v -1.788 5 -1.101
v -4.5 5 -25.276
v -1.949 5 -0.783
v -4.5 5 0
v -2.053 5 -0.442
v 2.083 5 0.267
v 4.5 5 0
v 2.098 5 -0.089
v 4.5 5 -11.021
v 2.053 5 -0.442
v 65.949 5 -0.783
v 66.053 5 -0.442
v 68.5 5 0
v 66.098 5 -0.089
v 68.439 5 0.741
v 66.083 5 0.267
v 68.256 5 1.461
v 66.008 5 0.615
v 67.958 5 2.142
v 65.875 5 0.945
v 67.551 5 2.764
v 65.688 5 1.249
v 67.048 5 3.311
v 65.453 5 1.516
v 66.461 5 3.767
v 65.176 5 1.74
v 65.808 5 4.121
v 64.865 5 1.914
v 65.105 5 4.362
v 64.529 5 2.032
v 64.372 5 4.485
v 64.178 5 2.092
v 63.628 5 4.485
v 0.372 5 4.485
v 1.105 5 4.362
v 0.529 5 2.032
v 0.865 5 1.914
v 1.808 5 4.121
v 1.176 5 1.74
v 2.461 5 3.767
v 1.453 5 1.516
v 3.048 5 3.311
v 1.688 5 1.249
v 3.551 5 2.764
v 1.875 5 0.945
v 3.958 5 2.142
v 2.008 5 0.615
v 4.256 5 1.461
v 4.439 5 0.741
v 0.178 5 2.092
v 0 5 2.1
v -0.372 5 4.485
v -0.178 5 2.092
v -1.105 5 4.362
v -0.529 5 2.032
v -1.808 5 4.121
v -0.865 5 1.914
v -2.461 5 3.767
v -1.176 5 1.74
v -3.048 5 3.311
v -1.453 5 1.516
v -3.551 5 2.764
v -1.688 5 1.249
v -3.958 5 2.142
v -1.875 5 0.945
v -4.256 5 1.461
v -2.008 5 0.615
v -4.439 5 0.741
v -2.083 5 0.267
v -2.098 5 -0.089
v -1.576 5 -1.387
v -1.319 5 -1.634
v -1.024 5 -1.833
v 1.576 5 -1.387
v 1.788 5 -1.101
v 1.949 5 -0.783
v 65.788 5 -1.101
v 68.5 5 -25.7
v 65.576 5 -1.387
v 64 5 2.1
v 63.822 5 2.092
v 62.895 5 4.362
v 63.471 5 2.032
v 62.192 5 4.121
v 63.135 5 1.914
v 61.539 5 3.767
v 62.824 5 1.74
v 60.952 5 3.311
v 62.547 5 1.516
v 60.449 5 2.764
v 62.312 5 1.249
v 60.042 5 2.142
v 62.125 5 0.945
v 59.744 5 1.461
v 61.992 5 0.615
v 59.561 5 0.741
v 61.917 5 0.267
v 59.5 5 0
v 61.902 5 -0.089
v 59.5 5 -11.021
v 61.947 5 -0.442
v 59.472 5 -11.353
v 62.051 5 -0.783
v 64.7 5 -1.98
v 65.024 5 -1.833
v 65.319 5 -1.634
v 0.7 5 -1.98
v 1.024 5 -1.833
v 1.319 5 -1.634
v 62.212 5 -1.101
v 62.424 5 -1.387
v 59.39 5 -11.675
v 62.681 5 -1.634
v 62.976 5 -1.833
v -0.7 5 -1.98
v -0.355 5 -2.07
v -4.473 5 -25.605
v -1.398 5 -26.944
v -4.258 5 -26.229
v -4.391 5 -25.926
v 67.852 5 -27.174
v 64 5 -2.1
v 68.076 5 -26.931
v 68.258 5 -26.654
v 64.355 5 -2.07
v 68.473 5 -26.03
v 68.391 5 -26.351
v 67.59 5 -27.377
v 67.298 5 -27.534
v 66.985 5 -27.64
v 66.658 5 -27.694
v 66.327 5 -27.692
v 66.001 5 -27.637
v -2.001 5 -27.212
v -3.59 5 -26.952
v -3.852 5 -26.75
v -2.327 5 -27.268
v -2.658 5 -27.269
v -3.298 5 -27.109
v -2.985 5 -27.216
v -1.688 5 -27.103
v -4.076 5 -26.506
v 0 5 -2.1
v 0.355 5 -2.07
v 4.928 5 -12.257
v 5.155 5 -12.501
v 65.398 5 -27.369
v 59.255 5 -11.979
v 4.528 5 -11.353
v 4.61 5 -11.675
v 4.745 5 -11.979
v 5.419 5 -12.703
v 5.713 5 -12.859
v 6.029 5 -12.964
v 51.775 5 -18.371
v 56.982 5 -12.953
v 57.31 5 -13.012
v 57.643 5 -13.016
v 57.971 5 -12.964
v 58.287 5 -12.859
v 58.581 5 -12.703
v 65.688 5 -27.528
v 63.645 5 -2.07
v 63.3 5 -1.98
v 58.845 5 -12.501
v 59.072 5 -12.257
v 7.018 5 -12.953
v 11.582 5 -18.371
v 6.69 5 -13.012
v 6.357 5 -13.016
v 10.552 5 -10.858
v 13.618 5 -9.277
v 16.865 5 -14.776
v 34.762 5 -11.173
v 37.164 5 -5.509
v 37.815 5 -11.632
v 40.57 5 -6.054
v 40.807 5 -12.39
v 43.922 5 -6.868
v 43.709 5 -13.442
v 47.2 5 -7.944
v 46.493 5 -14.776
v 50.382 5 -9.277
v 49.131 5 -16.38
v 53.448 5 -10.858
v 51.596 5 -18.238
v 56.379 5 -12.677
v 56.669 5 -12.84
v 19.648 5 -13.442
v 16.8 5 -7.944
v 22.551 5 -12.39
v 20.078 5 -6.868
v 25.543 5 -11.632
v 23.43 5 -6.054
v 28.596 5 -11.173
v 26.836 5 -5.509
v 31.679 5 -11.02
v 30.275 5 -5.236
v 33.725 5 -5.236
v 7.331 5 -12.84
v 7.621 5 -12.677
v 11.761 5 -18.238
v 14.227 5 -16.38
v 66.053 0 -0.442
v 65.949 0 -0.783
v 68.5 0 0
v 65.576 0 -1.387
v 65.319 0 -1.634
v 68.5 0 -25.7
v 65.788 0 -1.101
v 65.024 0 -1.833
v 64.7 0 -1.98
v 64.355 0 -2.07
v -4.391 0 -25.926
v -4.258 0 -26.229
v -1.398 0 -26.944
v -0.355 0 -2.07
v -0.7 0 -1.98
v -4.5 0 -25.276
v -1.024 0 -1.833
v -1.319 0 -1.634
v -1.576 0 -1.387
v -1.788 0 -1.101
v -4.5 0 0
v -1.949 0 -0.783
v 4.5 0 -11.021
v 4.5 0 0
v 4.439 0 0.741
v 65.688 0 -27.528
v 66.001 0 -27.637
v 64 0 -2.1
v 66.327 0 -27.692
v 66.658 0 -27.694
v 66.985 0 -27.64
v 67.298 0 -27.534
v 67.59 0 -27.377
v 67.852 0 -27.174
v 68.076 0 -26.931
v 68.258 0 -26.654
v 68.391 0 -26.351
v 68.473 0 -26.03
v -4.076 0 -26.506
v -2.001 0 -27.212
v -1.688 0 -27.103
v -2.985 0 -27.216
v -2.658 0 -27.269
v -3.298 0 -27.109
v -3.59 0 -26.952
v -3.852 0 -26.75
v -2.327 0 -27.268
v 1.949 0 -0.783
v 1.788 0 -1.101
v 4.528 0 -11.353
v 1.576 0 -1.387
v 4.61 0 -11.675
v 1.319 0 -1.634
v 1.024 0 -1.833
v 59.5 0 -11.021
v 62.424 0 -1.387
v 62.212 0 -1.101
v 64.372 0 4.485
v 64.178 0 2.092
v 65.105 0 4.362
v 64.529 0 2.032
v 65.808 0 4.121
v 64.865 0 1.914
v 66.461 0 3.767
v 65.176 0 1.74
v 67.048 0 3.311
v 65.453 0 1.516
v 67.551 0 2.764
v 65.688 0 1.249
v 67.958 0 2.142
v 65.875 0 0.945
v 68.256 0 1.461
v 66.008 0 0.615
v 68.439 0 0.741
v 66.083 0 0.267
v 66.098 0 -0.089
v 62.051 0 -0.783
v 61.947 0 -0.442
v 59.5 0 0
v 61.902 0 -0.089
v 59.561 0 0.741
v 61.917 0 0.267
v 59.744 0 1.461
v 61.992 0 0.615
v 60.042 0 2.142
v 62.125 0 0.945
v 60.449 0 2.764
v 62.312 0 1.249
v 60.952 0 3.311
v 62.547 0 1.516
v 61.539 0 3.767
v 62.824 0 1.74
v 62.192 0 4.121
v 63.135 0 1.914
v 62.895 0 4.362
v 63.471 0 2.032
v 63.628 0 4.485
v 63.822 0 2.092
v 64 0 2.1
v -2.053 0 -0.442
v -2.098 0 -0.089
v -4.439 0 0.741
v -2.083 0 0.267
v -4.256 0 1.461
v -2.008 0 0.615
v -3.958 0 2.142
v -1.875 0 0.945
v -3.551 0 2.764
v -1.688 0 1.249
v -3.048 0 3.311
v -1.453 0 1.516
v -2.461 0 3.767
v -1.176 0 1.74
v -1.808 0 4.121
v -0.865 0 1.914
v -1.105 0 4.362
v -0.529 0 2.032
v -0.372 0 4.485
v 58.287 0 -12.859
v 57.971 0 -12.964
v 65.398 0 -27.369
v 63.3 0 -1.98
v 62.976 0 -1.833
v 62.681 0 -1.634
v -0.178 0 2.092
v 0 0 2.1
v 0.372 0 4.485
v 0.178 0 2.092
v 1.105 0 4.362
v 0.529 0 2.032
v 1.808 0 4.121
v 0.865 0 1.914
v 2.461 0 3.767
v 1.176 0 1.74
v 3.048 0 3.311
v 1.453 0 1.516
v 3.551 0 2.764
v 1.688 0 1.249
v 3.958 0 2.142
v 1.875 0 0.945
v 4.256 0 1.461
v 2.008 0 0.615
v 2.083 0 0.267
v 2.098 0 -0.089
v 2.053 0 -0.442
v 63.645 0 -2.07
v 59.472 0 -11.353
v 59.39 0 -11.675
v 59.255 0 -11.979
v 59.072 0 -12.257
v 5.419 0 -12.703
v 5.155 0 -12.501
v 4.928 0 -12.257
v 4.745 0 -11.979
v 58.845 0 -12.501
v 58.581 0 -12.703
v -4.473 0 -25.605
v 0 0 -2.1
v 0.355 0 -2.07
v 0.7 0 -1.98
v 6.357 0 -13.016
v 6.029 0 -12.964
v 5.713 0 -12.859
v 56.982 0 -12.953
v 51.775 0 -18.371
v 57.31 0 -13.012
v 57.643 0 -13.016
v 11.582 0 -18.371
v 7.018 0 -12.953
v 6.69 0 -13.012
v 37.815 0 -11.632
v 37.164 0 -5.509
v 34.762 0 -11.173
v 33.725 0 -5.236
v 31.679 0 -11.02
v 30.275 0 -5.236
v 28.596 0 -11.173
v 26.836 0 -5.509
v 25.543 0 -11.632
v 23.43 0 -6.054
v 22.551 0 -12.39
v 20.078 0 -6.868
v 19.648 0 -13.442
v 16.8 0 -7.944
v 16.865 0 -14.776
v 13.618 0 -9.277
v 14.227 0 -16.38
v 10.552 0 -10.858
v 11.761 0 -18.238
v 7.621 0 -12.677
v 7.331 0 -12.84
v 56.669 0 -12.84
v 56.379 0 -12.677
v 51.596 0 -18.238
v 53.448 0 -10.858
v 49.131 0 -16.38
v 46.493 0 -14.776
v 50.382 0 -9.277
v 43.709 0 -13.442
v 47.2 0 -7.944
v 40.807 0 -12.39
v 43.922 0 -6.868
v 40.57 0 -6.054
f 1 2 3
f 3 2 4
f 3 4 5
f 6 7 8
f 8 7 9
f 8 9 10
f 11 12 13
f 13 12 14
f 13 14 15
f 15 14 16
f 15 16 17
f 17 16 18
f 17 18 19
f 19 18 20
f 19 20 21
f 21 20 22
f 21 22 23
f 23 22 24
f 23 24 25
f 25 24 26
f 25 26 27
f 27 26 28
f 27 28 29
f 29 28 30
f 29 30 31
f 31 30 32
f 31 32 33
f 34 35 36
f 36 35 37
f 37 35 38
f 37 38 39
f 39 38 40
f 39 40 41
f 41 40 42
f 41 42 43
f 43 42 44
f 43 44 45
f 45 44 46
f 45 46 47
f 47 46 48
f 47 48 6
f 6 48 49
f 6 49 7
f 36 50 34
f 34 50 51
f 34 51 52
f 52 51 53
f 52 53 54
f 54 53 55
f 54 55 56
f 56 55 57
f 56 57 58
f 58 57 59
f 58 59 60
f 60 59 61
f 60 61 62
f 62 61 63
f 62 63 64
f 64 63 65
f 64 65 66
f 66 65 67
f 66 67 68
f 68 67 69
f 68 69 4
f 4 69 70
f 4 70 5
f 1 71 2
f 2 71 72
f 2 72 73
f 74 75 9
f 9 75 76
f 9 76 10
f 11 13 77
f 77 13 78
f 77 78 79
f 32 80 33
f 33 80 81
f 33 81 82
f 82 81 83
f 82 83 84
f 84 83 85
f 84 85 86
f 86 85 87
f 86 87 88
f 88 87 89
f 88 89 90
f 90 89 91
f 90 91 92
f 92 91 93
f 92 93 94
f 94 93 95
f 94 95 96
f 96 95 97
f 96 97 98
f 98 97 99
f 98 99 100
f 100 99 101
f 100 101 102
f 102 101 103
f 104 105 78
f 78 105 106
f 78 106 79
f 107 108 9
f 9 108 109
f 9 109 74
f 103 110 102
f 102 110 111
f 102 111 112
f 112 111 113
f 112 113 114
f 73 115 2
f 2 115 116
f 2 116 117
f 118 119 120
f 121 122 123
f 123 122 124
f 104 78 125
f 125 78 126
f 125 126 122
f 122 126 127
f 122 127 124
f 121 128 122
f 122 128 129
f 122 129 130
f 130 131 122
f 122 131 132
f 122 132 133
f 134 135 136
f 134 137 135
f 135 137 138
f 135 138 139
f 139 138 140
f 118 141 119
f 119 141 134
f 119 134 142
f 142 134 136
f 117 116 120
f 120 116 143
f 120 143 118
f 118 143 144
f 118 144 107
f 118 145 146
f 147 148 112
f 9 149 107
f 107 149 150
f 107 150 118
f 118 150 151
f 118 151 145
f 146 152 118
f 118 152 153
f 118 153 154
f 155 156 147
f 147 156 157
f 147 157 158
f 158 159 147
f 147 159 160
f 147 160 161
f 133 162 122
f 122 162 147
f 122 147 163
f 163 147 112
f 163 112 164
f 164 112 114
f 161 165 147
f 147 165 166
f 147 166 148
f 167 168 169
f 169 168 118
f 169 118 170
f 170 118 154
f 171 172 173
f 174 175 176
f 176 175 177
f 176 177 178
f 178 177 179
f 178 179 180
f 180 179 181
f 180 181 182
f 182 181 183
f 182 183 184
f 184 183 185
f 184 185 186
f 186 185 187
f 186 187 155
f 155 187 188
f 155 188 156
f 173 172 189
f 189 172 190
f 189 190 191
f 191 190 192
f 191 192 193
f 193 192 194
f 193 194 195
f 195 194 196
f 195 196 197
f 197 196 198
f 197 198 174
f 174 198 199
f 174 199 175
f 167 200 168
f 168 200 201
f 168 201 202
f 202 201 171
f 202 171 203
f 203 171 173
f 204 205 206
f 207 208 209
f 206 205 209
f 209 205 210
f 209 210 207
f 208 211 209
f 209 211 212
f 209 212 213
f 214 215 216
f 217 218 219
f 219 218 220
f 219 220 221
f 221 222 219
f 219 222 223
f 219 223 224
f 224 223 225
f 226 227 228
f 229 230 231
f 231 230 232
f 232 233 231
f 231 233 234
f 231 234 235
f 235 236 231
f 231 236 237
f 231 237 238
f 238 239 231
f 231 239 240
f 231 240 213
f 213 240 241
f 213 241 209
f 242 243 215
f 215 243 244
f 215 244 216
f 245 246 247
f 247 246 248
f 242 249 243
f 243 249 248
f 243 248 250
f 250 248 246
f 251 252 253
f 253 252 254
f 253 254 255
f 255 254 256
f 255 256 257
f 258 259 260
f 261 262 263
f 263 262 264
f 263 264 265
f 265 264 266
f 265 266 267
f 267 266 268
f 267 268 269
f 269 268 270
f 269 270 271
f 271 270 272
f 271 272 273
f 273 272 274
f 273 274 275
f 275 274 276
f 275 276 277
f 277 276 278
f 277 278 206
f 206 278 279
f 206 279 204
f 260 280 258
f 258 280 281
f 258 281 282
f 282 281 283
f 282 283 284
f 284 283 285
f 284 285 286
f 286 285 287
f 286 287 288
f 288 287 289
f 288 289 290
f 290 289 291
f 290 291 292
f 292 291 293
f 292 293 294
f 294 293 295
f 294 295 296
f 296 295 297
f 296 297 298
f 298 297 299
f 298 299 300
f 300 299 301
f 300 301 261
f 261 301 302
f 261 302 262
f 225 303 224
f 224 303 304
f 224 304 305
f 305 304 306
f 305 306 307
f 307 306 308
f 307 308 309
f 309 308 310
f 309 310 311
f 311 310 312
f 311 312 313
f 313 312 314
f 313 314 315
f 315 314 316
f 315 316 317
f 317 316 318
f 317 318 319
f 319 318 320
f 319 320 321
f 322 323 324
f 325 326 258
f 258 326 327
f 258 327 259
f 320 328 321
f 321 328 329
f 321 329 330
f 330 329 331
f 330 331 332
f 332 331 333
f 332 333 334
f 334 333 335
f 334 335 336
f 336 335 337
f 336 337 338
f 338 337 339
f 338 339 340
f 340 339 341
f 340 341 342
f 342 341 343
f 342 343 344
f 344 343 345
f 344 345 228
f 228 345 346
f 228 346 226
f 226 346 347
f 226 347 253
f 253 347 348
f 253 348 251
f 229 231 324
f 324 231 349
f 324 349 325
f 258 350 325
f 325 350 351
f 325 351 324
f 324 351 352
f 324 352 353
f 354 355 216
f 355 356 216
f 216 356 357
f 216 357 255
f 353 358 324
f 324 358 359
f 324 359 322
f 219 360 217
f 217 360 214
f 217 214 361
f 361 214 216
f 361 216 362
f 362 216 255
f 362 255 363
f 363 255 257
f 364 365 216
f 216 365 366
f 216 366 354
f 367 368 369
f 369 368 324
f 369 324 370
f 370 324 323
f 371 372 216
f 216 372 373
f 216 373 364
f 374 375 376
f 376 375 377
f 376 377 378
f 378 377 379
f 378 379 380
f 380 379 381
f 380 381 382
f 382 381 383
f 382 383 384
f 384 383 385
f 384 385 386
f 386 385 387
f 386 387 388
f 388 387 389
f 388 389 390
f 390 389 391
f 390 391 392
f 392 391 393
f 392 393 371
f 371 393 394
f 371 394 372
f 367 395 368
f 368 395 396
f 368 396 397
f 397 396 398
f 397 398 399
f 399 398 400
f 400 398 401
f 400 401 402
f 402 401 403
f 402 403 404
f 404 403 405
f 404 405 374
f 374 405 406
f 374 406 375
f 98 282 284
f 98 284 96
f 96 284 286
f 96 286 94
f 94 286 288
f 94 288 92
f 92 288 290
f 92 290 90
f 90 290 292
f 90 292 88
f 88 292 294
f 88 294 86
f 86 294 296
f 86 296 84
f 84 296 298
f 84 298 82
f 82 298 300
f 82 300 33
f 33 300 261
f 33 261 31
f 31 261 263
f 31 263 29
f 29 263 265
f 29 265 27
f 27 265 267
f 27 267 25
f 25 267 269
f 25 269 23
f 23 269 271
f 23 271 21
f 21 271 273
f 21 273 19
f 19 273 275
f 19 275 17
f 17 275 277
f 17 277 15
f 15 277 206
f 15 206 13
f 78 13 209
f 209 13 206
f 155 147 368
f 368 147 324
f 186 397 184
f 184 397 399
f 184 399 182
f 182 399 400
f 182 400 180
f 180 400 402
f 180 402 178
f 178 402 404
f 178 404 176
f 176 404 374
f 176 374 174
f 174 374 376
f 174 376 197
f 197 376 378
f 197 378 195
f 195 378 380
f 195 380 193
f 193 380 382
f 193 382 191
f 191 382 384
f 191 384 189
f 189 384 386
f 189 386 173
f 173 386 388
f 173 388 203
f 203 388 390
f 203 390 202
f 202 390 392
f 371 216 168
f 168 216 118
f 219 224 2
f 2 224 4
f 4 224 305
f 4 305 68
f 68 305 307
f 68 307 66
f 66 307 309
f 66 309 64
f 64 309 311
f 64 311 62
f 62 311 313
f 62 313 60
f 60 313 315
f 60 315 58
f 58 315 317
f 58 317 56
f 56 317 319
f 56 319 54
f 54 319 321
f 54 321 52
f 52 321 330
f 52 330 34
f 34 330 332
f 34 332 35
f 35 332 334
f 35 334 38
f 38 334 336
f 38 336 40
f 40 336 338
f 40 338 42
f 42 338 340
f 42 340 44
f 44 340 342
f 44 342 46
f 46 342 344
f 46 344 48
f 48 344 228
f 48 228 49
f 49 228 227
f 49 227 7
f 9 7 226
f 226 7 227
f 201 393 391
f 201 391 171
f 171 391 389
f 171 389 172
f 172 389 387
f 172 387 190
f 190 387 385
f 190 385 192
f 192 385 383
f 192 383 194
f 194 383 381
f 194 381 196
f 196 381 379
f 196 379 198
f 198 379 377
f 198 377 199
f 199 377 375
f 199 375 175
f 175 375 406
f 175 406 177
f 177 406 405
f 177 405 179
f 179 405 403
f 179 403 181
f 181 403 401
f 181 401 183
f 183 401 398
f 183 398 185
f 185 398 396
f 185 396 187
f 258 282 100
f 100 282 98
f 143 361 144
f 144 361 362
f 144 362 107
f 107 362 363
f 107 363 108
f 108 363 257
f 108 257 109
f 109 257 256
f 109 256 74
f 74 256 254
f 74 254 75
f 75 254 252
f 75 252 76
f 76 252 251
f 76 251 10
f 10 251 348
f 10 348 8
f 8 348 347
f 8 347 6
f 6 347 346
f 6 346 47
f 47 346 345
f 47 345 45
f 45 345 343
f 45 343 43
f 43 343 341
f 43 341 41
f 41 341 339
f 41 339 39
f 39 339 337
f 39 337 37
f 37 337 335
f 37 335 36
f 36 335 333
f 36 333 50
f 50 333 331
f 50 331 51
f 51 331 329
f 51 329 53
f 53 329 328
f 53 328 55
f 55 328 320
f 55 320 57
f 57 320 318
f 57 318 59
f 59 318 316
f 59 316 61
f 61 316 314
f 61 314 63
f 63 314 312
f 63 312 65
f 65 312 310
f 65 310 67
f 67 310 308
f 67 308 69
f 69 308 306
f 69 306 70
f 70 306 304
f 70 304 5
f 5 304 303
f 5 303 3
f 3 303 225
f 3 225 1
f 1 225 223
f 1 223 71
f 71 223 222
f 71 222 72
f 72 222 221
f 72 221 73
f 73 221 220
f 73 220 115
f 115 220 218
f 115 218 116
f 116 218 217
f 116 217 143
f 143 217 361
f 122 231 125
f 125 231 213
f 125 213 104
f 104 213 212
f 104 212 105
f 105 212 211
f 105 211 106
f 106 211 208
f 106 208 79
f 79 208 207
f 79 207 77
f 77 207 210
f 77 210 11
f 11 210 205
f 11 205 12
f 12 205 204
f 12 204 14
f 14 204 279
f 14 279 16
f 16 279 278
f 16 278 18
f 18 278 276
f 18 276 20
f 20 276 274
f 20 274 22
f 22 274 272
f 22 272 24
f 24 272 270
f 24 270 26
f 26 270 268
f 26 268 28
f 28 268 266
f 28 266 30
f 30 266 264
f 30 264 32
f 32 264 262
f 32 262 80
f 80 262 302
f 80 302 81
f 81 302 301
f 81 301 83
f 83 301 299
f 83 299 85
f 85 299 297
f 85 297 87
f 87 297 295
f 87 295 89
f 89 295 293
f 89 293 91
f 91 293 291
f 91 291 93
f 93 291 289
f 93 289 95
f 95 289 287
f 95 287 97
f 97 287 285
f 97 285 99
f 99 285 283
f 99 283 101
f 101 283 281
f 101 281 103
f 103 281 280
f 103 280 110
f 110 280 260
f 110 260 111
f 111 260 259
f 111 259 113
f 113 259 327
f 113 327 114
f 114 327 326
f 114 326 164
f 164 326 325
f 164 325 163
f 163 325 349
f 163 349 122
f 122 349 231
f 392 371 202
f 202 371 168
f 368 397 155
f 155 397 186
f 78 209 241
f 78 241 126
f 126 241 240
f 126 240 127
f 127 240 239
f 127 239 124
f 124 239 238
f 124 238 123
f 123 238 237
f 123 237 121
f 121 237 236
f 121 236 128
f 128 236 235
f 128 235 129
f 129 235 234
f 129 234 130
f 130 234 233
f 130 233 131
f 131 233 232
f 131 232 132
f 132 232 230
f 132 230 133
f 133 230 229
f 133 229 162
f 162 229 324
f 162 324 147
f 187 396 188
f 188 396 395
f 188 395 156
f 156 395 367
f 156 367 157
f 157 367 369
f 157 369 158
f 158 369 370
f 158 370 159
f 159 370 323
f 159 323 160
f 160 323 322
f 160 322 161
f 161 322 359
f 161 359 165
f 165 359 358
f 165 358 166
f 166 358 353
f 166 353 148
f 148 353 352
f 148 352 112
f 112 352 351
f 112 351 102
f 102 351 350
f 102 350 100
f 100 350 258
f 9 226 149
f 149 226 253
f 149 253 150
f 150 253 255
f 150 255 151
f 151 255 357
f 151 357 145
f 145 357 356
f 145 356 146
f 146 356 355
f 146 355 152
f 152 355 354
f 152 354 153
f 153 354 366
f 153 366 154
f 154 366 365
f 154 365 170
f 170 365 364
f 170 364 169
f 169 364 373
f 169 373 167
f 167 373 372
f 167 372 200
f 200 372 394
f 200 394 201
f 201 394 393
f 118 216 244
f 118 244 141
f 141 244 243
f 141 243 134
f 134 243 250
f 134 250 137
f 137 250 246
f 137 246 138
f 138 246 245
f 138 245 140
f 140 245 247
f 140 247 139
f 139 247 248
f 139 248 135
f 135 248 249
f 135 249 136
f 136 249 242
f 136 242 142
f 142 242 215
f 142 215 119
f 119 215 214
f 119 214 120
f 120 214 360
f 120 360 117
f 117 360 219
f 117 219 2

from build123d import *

# Parameters (mm, degrees)
SKETCH1_R           = 2.1
BOSS_EXTRUDE1_DEPTH = 5
FILLET2_R           = 2


with BuildPart() as part:
    # Sketch1 → Boss-Extrude1 (new body)
    with BuildSketch(Plane(origin=(0, 0, 0), x_dir=(1, 0, 0), z_dir=(0, 1, 0))):
        with BuildLine():
            Line((68.5, 0), (68.5, 15))
            Line((68.5, 15), (68.5, 24.639286301))
            Line((68.5, 24.639286301), (68.5, 29.417680708))
            Line((68.5, 29.417680708), (51.680517538, 18.308520556))
            ThreePointArc((51.680517538, 18.308520556), (31.678817451, 11.020026075), (11.677117365, 18.308520556))
            Line((11.677117365, 18.308520556), (-4.5, 28.993402687))
            Line((-4.5, 28.993402687), (-4.5, 0))
            ThreePointArc((-4.5, 0), (0, -4.5), (4.5, 0))
            Line((4.5, 0), (4.5, 15))
            ThreePointArc((4.5, 15), (32, 5.201587921), (59.5, 15))
            Line((59.5, 15), (59.5, 0))
            ThreePointArc((59.5, 0), (64, -4.5), (68.5, 0))
        make_face()
        with Locations(Location((0, 0, 0), (0, 0, 270))):
            Circle(SKETCH1_R, mode=Mode.SUBTRACT)
        with Locations(Location((64, 0, 0), (0, 0, 270))):
            Circle(SKETCH1_R, mode=Mode.SUBTRACT)
    extrude(amount=BOSS_EXTRUDE1_DEPTH)

    # Fillet2
    fillet2_edges = [part.edges().sort_by_distance(p)[0] for p in [
        (59.5, 2.5, -15),
        (4.5, 2.5, -15),
        (-4.5, 2.5, -28.993402687),
        (11.677117365, 2.5, -18.308520556),
        (51.680517538, 2.5, -18.308520556),
        (68.5, 2.5, -29.417680708),
    ]]
    fillet(fillet2_edges, radius=FILLET2_R)


solid = part.part
